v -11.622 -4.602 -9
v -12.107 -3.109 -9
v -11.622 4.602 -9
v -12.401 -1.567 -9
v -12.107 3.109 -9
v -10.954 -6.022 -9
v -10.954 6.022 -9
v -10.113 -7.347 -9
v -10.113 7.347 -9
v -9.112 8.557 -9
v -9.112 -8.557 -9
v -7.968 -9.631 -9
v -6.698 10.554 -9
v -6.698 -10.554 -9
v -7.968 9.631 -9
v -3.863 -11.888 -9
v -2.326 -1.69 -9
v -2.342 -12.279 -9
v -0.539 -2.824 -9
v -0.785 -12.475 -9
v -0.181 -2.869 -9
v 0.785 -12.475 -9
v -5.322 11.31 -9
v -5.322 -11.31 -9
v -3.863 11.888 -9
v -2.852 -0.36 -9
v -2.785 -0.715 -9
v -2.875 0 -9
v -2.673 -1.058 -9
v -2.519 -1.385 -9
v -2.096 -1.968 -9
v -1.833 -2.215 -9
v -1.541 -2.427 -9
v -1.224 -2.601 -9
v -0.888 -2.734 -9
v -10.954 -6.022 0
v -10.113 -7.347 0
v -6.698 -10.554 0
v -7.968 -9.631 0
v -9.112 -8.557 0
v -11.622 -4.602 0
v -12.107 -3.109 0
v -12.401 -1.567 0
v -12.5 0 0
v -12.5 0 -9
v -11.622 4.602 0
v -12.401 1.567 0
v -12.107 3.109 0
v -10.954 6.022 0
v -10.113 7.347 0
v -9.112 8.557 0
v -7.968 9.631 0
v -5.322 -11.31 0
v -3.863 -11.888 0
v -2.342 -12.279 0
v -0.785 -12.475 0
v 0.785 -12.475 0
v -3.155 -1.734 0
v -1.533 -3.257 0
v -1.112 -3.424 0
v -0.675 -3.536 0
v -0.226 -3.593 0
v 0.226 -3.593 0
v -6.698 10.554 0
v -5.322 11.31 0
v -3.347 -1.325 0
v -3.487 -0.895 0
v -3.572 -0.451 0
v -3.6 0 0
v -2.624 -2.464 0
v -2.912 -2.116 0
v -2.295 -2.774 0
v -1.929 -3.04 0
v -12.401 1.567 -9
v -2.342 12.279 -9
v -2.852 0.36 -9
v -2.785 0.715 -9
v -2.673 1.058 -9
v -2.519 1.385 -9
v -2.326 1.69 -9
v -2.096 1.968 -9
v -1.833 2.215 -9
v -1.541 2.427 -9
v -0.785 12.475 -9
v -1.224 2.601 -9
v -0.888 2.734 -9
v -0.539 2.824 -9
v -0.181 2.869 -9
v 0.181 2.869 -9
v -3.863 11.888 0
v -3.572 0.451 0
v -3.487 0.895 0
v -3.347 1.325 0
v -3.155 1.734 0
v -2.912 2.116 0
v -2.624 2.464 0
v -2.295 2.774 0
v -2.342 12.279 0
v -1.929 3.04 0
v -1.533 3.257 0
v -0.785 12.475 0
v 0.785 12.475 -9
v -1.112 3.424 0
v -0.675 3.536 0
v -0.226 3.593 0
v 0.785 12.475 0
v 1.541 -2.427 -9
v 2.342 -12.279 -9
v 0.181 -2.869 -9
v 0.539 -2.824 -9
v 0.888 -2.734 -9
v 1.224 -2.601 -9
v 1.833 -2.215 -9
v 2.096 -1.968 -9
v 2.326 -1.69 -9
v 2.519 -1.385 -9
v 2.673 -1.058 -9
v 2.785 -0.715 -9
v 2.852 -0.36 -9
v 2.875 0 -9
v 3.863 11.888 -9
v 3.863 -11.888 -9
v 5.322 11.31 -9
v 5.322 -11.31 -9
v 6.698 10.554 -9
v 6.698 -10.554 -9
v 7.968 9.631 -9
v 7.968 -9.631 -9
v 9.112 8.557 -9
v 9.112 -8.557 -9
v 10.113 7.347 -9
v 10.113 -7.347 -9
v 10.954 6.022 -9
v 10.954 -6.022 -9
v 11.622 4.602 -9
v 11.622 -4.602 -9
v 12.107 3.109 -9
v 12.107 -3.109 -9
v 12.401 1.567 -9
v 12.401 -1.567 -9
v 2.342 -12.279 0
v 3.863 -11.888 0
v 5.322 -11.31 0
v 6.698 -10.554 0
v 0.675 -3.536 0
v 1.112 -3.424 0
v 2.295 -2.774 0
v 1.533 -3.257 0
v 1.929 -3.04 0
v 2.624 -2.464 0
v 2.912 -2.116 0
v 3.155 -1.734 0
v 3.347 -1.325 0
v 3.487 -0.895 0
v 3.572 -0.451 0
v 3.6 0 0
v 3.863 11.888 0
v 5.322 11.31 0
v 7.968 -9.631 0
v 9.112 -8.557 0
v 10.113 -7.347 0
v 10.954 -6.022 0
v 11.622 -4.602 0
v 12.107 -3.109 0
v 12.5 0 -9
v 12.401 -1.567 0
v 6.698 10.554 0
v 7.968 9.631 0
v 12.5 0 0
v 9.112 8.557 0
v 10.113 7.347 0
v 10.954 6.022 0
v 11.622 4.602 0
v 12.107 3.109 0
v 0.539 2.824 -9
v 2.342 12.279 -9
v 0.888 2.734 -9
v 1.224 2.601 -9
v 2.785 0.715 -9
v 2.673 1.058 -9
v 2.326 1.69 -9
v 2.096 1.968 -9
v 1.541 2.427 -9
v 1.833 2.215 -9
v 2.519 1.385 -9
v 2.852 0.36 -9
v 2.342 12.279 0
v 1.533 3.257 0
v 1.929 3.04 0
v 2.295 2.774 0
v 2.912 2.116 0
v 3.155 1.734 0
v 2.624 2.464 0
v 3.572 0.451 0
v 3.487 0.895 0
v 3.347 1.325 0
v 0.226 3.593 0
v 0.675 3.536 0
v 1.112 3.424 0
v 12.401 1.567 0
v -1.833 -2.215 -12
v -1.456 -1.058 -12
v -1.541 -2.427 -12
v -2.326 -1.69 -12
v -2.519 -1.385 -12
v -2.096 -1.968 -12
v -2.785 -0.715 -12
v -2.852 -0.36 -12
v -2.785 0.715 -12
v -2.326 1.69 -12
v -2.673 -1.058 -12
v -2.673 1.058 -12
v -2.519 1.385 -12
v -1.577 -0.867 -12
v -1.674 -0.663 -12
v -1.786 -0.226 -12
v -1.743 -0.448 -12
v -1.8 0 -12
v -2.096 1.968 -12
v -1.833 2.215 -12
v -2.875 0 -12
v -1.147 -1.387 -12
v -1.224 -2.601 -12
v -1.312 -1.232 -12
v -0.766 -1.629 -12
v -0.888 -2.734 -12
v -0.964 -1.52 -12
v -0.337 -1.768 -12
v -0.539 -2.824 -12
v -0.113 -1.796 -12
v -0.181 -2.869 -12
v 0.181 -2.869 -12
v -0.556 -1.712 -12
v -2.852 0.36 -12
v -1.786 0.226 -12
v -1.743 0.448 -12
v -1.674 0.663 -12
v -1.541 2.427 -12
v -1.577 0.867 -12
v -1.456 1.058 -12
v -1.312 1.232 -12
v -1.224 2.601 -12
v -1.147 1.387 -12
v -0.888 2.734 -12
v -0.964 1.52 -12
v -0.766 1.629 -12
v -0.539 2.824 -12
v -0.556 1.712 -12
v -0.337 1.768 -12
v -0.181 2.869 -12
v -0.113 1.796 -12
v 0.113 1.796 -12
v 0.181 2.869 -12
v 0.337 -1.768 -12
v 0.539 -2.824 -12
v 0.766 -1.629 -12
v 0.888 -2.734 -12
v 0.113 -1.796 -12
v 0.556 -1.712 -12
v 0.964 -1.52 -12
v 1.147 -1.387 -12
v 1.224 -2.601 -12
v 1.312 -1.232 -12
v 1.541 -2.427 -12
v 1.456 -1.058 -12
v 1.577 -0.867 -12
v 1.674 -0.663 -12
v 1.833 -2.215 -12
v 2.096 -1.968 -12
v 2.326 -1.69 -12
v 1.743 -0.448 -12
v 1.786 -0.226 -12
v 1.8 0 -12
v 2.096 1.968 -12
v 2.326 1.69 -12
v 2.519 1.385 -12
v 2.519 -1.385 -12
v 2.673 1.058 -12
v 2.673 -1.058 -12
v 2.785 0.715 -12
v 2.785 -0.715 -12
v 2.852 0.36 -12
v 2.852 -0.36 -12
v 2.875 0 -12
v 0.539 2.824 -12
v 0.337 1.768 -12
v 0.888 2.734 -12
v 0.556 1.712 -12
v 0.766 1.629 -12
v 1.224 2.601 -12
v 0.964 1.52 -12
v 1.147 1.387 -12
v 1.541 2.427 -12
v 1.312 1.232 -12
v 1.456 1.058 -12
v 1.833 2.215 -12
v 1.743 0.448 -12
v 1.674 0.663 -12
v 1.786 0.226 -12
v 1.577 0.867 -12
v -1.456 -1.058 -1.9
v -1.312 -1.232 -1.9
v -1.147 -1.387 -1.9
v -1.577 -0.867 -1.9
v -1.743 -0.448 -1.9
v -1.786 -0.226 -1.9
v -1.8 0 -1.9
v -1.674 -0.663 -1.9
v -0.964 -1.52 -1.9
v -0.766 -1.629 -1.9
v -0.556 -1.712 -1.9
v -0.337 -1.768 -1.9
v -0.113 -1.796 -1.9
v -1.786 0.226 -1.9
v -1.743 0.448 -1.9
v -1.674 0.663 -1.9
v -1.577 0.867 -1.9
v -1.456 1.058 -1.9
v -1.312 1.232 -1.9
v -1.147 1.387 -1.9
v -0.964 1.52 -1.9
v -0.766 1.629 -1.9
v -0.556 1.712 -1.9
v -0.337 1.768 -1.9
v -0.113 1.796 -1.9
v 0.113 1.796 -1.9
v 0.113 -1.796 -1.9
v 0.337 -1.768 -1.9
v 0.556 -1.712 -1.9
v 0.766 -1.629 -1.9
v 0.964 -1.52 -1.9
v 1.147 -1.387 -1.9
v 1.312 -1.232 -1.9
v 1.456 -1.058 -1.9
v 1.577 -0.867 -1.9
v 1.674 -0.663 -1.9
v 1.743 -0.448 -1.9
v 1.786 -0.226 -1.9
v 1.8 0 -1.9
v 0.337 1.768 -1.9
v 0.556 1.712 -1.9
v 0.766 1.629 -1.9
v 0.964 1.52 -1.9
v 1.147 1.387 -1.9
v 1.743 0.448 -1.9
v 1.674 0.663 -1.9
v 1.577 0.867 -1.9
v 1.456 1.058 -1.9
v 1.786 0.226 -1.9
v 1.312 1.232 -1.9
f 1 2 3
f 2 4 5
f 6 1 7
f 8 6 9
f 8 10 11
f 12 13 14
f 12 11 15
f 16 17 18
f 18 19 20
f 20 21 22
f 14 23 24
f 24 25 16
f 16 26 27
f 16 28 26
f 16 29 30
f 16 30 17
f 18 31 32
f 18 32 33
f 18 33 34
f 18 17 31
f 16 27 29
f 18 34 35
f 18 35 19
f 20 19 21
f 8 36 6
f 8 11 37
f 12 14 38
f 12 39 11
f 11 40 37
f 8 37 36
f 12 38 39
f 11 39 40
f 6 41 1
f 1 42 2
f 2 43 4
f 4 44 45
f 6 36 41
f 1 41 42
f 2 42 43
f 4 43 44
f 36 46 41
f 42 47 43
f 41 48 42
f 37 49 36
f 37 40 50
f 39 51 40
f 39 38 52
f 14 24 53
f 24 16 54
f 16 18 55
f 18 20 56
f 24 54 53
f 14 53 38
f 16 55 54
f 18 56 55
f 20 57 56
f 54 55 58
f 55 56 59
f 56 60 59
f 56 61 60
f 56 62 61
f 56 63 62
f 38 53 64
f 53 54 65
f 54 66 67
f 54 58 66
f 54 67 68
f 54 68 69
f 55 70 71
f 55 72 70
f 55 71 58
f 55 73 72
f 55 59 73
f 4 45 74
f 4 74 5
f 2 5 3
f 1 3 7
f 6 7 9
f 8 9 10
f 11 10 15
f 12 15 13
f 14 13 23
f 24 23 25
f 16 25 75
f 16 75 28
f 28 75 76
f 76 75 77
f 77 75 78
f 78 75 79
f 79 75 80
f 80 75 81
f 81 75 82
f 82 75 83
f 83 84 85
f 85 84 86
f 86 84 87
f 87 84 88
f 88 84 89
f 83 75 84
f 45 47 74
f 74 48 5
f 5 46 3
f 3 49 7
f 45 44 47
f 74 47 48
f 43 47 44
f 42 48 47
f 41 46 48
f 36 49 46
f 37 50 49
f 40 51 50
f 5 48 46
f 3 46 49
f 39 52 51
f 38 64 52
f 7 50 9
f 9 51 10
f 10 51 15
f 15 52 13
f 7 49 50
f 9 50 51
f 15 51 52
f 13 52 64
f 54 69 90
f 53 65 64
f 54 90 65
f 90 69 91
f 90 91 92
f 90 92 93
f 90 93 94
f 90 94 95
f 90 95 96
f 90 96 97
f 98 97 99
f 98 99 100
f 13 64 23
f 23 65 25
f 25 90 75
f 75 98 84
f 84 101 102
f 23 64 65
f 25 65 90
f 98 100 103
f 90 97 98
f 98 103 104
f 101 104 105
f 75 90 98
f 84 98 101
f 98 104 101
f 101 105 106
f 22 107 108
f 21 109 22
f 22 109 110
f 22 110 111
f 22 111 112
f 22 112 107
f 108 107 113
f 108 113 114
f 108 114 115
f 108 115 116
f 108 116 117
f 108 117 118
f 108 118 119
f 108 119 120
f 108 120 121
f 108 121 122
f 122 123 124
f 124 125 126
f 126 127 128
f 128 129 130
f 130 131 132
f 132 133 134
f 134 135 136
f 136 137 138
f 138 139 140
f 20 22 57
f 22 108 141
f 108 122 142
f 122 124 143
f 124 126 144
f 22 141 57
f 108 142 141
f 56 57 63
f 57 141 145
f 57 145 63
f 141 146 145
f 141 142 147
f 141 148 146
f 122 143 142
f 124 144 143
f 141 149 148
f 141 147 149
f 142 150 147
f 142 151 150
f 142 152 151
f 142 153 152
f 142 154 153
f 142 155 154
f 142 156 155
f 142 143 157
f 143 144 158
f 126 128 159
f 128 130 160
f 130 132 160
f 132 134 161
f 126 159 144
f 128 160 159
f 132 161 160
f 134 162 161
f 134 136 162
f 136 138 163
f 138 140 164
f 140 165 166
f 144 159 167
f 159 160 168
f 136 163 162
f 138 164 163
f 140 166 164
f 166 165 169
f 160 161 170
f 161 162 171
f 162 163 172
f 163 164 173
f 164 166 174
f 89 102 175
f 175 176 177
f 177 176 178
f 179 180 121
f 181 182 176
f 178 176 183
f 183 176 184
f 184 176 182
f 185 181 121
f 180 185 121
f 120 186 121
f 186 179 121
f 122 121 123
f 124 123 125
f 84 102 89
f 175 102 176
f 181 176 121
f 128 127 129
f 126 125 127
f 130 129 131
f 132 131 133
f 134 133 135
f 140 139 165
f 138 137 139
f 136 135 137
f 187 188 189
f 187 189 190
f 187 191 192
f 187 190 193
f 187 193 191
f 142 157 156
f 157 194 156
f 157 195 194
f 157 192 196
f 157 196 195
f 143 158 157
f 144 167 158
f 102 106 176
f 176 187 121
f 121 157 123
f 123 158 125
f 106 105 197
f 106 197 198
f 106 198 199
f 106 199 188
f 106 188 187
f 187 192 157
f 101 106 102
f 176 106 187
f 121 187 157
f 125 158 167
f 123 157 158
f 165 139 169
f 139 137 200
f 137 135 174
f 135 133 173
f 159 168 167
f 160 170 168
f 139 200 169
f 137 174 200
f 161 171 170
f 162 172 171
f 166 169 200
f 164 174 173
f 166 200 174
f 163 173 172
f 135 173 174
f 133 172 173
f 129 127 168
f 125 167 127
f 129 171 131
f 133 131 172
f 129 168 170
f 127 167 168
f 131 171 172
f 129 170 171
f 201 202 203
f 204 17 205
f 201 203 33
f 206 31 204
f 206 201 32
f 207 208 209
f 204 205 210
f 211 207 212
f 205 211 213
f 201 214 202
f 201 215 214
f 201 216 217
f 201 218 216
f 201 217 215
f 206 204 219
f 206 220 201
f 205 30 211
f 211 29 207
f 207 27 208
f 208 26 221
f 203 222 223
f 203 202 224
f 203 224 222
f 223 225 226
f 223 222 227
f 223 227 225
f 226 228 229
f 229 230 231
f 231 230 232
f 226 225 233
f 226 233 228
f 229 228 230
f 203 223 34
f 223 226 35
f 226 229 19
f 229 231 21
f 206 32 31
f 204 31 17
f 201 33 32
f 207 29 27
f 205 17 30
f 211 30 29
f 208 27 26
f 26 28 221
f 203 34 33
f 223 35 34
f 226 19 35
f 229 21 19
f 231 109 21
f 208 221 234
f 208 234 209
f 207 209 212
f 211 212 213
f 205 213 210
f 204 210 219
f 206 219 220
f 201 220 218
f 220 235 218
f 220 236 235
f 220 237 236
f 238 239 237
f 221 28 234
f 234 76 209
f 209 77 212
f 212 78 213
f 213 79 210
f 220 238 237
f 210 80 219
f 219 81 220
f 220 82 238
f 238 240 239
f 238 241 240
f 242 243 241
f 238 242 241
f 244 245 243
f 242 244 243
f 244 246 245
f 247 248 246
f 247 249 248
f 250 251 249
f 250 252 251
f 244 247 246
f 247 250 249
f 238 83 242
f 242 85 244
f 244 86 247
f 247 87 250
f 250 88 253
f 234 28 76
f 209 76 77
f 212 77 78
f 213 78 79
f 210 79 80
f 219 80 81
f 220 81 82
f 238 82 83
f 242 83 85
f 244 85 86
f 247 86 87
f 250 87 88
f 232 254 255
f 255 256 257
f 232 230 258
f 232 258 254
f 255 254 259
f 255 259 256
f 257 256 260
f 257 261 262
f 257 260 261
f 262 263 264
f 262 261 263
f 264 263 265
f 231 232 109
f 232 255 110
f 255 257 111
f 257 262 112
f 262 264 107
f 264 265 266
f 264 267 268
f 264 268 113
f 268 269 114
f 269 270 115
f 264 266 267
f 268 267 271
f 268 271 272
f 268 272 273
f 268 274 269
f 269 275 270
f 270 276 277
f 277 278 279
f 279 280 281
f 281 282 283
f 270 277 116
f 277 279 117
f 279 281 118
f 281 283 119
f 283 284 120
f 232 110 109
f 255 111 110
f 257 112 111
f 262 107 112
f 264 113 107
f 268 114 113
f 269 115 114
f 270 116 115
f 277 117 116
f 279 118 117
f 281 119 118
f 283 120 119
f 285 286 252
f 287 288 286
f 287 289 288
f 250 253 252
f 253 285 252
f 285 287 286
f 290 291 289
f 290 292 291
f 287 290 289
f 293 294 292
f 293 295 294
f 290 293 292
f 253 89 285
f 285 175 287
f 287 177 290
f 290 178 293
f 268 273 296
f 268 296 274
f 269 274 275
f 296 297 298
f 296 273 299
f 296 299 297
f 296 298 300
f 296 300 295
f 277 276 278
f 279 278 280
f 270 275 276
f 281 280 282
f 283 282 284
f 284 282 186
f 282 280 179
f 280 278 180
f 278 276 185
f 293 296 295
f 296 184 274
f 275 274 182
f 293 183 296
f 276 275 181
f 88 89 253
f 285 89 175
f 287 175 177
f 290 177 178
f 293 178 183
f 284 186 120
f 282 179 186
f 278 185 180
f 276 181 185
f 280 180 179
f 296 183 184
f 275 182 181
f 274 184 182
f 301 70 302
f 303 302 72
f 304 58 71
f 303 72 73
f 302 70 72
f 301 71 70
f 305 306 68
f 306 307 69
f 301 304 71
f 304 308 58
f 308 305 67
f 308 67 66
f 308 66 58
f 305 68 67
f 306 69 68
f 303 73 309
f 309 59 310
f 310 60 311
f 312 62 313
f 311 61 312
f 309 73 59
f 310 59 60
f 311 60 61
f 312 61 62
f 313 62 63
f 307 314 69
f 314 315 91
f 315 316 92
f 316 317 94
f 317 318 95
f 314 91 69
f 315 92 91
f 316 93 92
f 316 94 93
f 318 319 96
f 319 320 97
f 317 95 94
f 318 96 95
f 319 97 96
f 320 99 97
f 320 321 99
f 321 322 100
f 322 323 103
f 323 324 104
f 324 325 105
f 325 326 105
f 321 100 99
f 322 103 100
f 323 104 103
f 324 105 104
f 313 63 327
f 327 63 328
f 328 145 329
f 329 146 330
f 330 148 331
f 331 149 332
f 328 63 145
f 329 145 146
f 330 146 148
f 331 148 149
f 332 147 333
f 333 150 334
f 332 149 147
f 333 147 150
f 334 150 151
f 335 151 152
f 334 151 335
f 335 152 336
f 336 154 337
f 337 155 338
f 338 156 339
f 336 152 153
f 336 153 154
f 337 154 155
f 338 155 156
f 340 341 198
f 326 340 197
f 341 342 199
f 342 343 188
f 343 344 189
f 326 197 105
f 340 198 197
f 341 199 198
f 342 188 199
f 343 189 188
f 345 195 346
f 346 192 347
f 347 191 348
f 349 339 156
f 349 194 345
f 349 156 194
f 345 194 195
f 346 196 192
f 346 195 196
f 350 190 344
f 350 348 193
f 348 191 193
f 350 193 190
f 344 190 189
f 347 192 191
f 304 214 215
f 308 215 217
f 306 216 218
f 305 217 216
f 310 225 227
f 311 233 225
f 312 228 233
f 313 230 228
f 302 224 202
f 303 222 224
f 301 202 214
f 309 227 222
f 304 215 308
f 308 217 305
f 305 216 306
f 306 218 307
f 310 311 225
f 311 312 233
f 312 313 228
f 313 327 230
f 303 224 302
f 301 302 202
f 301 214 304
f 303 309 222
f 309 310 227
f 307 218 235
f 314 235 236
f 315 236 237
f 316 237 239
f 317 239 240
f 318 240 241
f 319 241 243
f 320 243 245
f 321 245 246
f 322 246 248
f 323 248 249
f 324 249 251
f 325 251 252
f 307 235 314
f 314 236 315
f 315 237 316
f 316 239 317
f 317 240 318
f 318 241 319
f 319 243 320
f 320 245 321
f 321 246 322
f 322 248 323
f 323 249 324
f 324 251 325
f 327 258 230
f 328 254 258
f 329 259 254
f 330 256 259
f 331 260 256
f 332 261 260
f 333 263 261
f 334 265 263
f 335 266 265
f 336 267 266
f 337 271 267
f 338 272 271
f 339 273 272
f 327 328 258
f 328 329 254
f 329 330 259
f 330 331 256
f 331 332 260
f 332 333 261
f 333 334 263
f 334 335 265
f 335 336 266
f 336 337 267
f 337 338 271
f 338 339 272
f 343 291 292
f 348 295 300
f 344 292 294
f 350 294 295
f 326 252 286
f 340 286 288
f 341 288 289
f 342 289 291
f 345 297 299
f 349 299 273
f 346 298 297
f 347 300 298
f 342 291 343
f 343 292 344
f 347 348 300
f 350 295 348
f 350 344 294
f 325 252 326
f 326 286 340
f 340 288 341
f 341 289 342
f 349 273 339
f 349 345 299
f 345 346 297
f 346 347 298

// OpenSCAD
$fn = 50;

difference() {
	union() {
		translate(v = [0, 0, -9.0]) {
			cylinder(h = 9, r = 12.5);
		}
		#translate(v = [0, 0, -12.0]) {
			cylinder(h = 12, r = 2.875);
		}
	}
	union() {
		translate(v = [0, 0, 0]) {
			rotate(a = [0, 0, 0]) {
				difference() {
					union() {
						translate(v = [0, 0, -12.0]) {
							cylinder(h = 12, r = 1.5);
						}
						translate(v = [0, 0, -1.9]) {
							cylinder(h = 1.9, r1 = 1.8, r2 = 3.6);
						}
						translate(v = [0, 0, -12.0]) {
							cylinder(h = 12, r = 1.8);
						}
						translate(v = [0, 0, -12.0]) {
							cylinder(h = 12, r = 1.5);
						}
					}
					union();
				}
			}
		}
	}
}
